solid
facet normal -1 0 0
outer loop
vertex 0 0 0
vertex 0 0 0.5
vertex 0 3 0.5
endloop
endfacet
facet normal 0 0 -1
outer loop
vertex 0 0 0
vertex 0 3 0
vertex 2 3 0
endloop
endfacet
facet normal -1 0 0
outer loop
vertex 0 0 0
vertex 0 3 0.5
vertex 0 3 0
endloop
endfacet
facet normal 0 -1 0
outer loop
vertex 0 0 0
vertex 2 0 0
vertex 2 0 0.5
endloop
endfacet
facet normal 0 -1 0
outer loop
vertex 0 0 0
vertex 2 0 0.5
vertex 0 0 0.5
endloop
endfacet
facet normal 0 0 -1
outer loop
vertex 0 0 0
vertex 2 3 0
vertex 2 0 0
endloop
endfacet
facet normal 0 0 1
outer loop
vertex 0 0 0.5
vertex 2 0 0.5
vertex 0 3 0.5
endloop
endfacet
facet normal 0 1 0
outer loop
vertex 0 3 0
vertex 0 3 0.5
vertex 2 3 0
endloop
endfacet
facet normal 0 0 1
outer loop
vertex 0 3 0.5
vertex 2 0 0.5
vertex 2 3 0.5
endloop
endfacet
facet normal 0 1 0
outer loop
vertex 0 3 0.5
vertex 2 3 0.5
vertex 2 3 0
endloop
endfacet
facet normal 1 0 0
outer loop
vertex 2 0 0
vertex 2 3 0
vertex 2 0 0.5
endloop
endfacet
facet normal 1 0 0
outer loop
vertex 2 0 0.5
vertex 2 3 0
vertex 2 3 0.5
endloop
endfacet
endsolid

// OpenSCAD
/* Warning, this is a very basic generator with a lot of approximation 
input data : [UDFN, Q6B, 2x3x0.5mm, 8, , B, C04-21509B]
generated by com.zoubworld.electronics.cad.model3d.Basic
Date : Sun Feb 15 10:50:49 CET 2026
*/

//body
color("black")
translate([0,0,0])
cube([2.0,3.0,0.5], center=false);
